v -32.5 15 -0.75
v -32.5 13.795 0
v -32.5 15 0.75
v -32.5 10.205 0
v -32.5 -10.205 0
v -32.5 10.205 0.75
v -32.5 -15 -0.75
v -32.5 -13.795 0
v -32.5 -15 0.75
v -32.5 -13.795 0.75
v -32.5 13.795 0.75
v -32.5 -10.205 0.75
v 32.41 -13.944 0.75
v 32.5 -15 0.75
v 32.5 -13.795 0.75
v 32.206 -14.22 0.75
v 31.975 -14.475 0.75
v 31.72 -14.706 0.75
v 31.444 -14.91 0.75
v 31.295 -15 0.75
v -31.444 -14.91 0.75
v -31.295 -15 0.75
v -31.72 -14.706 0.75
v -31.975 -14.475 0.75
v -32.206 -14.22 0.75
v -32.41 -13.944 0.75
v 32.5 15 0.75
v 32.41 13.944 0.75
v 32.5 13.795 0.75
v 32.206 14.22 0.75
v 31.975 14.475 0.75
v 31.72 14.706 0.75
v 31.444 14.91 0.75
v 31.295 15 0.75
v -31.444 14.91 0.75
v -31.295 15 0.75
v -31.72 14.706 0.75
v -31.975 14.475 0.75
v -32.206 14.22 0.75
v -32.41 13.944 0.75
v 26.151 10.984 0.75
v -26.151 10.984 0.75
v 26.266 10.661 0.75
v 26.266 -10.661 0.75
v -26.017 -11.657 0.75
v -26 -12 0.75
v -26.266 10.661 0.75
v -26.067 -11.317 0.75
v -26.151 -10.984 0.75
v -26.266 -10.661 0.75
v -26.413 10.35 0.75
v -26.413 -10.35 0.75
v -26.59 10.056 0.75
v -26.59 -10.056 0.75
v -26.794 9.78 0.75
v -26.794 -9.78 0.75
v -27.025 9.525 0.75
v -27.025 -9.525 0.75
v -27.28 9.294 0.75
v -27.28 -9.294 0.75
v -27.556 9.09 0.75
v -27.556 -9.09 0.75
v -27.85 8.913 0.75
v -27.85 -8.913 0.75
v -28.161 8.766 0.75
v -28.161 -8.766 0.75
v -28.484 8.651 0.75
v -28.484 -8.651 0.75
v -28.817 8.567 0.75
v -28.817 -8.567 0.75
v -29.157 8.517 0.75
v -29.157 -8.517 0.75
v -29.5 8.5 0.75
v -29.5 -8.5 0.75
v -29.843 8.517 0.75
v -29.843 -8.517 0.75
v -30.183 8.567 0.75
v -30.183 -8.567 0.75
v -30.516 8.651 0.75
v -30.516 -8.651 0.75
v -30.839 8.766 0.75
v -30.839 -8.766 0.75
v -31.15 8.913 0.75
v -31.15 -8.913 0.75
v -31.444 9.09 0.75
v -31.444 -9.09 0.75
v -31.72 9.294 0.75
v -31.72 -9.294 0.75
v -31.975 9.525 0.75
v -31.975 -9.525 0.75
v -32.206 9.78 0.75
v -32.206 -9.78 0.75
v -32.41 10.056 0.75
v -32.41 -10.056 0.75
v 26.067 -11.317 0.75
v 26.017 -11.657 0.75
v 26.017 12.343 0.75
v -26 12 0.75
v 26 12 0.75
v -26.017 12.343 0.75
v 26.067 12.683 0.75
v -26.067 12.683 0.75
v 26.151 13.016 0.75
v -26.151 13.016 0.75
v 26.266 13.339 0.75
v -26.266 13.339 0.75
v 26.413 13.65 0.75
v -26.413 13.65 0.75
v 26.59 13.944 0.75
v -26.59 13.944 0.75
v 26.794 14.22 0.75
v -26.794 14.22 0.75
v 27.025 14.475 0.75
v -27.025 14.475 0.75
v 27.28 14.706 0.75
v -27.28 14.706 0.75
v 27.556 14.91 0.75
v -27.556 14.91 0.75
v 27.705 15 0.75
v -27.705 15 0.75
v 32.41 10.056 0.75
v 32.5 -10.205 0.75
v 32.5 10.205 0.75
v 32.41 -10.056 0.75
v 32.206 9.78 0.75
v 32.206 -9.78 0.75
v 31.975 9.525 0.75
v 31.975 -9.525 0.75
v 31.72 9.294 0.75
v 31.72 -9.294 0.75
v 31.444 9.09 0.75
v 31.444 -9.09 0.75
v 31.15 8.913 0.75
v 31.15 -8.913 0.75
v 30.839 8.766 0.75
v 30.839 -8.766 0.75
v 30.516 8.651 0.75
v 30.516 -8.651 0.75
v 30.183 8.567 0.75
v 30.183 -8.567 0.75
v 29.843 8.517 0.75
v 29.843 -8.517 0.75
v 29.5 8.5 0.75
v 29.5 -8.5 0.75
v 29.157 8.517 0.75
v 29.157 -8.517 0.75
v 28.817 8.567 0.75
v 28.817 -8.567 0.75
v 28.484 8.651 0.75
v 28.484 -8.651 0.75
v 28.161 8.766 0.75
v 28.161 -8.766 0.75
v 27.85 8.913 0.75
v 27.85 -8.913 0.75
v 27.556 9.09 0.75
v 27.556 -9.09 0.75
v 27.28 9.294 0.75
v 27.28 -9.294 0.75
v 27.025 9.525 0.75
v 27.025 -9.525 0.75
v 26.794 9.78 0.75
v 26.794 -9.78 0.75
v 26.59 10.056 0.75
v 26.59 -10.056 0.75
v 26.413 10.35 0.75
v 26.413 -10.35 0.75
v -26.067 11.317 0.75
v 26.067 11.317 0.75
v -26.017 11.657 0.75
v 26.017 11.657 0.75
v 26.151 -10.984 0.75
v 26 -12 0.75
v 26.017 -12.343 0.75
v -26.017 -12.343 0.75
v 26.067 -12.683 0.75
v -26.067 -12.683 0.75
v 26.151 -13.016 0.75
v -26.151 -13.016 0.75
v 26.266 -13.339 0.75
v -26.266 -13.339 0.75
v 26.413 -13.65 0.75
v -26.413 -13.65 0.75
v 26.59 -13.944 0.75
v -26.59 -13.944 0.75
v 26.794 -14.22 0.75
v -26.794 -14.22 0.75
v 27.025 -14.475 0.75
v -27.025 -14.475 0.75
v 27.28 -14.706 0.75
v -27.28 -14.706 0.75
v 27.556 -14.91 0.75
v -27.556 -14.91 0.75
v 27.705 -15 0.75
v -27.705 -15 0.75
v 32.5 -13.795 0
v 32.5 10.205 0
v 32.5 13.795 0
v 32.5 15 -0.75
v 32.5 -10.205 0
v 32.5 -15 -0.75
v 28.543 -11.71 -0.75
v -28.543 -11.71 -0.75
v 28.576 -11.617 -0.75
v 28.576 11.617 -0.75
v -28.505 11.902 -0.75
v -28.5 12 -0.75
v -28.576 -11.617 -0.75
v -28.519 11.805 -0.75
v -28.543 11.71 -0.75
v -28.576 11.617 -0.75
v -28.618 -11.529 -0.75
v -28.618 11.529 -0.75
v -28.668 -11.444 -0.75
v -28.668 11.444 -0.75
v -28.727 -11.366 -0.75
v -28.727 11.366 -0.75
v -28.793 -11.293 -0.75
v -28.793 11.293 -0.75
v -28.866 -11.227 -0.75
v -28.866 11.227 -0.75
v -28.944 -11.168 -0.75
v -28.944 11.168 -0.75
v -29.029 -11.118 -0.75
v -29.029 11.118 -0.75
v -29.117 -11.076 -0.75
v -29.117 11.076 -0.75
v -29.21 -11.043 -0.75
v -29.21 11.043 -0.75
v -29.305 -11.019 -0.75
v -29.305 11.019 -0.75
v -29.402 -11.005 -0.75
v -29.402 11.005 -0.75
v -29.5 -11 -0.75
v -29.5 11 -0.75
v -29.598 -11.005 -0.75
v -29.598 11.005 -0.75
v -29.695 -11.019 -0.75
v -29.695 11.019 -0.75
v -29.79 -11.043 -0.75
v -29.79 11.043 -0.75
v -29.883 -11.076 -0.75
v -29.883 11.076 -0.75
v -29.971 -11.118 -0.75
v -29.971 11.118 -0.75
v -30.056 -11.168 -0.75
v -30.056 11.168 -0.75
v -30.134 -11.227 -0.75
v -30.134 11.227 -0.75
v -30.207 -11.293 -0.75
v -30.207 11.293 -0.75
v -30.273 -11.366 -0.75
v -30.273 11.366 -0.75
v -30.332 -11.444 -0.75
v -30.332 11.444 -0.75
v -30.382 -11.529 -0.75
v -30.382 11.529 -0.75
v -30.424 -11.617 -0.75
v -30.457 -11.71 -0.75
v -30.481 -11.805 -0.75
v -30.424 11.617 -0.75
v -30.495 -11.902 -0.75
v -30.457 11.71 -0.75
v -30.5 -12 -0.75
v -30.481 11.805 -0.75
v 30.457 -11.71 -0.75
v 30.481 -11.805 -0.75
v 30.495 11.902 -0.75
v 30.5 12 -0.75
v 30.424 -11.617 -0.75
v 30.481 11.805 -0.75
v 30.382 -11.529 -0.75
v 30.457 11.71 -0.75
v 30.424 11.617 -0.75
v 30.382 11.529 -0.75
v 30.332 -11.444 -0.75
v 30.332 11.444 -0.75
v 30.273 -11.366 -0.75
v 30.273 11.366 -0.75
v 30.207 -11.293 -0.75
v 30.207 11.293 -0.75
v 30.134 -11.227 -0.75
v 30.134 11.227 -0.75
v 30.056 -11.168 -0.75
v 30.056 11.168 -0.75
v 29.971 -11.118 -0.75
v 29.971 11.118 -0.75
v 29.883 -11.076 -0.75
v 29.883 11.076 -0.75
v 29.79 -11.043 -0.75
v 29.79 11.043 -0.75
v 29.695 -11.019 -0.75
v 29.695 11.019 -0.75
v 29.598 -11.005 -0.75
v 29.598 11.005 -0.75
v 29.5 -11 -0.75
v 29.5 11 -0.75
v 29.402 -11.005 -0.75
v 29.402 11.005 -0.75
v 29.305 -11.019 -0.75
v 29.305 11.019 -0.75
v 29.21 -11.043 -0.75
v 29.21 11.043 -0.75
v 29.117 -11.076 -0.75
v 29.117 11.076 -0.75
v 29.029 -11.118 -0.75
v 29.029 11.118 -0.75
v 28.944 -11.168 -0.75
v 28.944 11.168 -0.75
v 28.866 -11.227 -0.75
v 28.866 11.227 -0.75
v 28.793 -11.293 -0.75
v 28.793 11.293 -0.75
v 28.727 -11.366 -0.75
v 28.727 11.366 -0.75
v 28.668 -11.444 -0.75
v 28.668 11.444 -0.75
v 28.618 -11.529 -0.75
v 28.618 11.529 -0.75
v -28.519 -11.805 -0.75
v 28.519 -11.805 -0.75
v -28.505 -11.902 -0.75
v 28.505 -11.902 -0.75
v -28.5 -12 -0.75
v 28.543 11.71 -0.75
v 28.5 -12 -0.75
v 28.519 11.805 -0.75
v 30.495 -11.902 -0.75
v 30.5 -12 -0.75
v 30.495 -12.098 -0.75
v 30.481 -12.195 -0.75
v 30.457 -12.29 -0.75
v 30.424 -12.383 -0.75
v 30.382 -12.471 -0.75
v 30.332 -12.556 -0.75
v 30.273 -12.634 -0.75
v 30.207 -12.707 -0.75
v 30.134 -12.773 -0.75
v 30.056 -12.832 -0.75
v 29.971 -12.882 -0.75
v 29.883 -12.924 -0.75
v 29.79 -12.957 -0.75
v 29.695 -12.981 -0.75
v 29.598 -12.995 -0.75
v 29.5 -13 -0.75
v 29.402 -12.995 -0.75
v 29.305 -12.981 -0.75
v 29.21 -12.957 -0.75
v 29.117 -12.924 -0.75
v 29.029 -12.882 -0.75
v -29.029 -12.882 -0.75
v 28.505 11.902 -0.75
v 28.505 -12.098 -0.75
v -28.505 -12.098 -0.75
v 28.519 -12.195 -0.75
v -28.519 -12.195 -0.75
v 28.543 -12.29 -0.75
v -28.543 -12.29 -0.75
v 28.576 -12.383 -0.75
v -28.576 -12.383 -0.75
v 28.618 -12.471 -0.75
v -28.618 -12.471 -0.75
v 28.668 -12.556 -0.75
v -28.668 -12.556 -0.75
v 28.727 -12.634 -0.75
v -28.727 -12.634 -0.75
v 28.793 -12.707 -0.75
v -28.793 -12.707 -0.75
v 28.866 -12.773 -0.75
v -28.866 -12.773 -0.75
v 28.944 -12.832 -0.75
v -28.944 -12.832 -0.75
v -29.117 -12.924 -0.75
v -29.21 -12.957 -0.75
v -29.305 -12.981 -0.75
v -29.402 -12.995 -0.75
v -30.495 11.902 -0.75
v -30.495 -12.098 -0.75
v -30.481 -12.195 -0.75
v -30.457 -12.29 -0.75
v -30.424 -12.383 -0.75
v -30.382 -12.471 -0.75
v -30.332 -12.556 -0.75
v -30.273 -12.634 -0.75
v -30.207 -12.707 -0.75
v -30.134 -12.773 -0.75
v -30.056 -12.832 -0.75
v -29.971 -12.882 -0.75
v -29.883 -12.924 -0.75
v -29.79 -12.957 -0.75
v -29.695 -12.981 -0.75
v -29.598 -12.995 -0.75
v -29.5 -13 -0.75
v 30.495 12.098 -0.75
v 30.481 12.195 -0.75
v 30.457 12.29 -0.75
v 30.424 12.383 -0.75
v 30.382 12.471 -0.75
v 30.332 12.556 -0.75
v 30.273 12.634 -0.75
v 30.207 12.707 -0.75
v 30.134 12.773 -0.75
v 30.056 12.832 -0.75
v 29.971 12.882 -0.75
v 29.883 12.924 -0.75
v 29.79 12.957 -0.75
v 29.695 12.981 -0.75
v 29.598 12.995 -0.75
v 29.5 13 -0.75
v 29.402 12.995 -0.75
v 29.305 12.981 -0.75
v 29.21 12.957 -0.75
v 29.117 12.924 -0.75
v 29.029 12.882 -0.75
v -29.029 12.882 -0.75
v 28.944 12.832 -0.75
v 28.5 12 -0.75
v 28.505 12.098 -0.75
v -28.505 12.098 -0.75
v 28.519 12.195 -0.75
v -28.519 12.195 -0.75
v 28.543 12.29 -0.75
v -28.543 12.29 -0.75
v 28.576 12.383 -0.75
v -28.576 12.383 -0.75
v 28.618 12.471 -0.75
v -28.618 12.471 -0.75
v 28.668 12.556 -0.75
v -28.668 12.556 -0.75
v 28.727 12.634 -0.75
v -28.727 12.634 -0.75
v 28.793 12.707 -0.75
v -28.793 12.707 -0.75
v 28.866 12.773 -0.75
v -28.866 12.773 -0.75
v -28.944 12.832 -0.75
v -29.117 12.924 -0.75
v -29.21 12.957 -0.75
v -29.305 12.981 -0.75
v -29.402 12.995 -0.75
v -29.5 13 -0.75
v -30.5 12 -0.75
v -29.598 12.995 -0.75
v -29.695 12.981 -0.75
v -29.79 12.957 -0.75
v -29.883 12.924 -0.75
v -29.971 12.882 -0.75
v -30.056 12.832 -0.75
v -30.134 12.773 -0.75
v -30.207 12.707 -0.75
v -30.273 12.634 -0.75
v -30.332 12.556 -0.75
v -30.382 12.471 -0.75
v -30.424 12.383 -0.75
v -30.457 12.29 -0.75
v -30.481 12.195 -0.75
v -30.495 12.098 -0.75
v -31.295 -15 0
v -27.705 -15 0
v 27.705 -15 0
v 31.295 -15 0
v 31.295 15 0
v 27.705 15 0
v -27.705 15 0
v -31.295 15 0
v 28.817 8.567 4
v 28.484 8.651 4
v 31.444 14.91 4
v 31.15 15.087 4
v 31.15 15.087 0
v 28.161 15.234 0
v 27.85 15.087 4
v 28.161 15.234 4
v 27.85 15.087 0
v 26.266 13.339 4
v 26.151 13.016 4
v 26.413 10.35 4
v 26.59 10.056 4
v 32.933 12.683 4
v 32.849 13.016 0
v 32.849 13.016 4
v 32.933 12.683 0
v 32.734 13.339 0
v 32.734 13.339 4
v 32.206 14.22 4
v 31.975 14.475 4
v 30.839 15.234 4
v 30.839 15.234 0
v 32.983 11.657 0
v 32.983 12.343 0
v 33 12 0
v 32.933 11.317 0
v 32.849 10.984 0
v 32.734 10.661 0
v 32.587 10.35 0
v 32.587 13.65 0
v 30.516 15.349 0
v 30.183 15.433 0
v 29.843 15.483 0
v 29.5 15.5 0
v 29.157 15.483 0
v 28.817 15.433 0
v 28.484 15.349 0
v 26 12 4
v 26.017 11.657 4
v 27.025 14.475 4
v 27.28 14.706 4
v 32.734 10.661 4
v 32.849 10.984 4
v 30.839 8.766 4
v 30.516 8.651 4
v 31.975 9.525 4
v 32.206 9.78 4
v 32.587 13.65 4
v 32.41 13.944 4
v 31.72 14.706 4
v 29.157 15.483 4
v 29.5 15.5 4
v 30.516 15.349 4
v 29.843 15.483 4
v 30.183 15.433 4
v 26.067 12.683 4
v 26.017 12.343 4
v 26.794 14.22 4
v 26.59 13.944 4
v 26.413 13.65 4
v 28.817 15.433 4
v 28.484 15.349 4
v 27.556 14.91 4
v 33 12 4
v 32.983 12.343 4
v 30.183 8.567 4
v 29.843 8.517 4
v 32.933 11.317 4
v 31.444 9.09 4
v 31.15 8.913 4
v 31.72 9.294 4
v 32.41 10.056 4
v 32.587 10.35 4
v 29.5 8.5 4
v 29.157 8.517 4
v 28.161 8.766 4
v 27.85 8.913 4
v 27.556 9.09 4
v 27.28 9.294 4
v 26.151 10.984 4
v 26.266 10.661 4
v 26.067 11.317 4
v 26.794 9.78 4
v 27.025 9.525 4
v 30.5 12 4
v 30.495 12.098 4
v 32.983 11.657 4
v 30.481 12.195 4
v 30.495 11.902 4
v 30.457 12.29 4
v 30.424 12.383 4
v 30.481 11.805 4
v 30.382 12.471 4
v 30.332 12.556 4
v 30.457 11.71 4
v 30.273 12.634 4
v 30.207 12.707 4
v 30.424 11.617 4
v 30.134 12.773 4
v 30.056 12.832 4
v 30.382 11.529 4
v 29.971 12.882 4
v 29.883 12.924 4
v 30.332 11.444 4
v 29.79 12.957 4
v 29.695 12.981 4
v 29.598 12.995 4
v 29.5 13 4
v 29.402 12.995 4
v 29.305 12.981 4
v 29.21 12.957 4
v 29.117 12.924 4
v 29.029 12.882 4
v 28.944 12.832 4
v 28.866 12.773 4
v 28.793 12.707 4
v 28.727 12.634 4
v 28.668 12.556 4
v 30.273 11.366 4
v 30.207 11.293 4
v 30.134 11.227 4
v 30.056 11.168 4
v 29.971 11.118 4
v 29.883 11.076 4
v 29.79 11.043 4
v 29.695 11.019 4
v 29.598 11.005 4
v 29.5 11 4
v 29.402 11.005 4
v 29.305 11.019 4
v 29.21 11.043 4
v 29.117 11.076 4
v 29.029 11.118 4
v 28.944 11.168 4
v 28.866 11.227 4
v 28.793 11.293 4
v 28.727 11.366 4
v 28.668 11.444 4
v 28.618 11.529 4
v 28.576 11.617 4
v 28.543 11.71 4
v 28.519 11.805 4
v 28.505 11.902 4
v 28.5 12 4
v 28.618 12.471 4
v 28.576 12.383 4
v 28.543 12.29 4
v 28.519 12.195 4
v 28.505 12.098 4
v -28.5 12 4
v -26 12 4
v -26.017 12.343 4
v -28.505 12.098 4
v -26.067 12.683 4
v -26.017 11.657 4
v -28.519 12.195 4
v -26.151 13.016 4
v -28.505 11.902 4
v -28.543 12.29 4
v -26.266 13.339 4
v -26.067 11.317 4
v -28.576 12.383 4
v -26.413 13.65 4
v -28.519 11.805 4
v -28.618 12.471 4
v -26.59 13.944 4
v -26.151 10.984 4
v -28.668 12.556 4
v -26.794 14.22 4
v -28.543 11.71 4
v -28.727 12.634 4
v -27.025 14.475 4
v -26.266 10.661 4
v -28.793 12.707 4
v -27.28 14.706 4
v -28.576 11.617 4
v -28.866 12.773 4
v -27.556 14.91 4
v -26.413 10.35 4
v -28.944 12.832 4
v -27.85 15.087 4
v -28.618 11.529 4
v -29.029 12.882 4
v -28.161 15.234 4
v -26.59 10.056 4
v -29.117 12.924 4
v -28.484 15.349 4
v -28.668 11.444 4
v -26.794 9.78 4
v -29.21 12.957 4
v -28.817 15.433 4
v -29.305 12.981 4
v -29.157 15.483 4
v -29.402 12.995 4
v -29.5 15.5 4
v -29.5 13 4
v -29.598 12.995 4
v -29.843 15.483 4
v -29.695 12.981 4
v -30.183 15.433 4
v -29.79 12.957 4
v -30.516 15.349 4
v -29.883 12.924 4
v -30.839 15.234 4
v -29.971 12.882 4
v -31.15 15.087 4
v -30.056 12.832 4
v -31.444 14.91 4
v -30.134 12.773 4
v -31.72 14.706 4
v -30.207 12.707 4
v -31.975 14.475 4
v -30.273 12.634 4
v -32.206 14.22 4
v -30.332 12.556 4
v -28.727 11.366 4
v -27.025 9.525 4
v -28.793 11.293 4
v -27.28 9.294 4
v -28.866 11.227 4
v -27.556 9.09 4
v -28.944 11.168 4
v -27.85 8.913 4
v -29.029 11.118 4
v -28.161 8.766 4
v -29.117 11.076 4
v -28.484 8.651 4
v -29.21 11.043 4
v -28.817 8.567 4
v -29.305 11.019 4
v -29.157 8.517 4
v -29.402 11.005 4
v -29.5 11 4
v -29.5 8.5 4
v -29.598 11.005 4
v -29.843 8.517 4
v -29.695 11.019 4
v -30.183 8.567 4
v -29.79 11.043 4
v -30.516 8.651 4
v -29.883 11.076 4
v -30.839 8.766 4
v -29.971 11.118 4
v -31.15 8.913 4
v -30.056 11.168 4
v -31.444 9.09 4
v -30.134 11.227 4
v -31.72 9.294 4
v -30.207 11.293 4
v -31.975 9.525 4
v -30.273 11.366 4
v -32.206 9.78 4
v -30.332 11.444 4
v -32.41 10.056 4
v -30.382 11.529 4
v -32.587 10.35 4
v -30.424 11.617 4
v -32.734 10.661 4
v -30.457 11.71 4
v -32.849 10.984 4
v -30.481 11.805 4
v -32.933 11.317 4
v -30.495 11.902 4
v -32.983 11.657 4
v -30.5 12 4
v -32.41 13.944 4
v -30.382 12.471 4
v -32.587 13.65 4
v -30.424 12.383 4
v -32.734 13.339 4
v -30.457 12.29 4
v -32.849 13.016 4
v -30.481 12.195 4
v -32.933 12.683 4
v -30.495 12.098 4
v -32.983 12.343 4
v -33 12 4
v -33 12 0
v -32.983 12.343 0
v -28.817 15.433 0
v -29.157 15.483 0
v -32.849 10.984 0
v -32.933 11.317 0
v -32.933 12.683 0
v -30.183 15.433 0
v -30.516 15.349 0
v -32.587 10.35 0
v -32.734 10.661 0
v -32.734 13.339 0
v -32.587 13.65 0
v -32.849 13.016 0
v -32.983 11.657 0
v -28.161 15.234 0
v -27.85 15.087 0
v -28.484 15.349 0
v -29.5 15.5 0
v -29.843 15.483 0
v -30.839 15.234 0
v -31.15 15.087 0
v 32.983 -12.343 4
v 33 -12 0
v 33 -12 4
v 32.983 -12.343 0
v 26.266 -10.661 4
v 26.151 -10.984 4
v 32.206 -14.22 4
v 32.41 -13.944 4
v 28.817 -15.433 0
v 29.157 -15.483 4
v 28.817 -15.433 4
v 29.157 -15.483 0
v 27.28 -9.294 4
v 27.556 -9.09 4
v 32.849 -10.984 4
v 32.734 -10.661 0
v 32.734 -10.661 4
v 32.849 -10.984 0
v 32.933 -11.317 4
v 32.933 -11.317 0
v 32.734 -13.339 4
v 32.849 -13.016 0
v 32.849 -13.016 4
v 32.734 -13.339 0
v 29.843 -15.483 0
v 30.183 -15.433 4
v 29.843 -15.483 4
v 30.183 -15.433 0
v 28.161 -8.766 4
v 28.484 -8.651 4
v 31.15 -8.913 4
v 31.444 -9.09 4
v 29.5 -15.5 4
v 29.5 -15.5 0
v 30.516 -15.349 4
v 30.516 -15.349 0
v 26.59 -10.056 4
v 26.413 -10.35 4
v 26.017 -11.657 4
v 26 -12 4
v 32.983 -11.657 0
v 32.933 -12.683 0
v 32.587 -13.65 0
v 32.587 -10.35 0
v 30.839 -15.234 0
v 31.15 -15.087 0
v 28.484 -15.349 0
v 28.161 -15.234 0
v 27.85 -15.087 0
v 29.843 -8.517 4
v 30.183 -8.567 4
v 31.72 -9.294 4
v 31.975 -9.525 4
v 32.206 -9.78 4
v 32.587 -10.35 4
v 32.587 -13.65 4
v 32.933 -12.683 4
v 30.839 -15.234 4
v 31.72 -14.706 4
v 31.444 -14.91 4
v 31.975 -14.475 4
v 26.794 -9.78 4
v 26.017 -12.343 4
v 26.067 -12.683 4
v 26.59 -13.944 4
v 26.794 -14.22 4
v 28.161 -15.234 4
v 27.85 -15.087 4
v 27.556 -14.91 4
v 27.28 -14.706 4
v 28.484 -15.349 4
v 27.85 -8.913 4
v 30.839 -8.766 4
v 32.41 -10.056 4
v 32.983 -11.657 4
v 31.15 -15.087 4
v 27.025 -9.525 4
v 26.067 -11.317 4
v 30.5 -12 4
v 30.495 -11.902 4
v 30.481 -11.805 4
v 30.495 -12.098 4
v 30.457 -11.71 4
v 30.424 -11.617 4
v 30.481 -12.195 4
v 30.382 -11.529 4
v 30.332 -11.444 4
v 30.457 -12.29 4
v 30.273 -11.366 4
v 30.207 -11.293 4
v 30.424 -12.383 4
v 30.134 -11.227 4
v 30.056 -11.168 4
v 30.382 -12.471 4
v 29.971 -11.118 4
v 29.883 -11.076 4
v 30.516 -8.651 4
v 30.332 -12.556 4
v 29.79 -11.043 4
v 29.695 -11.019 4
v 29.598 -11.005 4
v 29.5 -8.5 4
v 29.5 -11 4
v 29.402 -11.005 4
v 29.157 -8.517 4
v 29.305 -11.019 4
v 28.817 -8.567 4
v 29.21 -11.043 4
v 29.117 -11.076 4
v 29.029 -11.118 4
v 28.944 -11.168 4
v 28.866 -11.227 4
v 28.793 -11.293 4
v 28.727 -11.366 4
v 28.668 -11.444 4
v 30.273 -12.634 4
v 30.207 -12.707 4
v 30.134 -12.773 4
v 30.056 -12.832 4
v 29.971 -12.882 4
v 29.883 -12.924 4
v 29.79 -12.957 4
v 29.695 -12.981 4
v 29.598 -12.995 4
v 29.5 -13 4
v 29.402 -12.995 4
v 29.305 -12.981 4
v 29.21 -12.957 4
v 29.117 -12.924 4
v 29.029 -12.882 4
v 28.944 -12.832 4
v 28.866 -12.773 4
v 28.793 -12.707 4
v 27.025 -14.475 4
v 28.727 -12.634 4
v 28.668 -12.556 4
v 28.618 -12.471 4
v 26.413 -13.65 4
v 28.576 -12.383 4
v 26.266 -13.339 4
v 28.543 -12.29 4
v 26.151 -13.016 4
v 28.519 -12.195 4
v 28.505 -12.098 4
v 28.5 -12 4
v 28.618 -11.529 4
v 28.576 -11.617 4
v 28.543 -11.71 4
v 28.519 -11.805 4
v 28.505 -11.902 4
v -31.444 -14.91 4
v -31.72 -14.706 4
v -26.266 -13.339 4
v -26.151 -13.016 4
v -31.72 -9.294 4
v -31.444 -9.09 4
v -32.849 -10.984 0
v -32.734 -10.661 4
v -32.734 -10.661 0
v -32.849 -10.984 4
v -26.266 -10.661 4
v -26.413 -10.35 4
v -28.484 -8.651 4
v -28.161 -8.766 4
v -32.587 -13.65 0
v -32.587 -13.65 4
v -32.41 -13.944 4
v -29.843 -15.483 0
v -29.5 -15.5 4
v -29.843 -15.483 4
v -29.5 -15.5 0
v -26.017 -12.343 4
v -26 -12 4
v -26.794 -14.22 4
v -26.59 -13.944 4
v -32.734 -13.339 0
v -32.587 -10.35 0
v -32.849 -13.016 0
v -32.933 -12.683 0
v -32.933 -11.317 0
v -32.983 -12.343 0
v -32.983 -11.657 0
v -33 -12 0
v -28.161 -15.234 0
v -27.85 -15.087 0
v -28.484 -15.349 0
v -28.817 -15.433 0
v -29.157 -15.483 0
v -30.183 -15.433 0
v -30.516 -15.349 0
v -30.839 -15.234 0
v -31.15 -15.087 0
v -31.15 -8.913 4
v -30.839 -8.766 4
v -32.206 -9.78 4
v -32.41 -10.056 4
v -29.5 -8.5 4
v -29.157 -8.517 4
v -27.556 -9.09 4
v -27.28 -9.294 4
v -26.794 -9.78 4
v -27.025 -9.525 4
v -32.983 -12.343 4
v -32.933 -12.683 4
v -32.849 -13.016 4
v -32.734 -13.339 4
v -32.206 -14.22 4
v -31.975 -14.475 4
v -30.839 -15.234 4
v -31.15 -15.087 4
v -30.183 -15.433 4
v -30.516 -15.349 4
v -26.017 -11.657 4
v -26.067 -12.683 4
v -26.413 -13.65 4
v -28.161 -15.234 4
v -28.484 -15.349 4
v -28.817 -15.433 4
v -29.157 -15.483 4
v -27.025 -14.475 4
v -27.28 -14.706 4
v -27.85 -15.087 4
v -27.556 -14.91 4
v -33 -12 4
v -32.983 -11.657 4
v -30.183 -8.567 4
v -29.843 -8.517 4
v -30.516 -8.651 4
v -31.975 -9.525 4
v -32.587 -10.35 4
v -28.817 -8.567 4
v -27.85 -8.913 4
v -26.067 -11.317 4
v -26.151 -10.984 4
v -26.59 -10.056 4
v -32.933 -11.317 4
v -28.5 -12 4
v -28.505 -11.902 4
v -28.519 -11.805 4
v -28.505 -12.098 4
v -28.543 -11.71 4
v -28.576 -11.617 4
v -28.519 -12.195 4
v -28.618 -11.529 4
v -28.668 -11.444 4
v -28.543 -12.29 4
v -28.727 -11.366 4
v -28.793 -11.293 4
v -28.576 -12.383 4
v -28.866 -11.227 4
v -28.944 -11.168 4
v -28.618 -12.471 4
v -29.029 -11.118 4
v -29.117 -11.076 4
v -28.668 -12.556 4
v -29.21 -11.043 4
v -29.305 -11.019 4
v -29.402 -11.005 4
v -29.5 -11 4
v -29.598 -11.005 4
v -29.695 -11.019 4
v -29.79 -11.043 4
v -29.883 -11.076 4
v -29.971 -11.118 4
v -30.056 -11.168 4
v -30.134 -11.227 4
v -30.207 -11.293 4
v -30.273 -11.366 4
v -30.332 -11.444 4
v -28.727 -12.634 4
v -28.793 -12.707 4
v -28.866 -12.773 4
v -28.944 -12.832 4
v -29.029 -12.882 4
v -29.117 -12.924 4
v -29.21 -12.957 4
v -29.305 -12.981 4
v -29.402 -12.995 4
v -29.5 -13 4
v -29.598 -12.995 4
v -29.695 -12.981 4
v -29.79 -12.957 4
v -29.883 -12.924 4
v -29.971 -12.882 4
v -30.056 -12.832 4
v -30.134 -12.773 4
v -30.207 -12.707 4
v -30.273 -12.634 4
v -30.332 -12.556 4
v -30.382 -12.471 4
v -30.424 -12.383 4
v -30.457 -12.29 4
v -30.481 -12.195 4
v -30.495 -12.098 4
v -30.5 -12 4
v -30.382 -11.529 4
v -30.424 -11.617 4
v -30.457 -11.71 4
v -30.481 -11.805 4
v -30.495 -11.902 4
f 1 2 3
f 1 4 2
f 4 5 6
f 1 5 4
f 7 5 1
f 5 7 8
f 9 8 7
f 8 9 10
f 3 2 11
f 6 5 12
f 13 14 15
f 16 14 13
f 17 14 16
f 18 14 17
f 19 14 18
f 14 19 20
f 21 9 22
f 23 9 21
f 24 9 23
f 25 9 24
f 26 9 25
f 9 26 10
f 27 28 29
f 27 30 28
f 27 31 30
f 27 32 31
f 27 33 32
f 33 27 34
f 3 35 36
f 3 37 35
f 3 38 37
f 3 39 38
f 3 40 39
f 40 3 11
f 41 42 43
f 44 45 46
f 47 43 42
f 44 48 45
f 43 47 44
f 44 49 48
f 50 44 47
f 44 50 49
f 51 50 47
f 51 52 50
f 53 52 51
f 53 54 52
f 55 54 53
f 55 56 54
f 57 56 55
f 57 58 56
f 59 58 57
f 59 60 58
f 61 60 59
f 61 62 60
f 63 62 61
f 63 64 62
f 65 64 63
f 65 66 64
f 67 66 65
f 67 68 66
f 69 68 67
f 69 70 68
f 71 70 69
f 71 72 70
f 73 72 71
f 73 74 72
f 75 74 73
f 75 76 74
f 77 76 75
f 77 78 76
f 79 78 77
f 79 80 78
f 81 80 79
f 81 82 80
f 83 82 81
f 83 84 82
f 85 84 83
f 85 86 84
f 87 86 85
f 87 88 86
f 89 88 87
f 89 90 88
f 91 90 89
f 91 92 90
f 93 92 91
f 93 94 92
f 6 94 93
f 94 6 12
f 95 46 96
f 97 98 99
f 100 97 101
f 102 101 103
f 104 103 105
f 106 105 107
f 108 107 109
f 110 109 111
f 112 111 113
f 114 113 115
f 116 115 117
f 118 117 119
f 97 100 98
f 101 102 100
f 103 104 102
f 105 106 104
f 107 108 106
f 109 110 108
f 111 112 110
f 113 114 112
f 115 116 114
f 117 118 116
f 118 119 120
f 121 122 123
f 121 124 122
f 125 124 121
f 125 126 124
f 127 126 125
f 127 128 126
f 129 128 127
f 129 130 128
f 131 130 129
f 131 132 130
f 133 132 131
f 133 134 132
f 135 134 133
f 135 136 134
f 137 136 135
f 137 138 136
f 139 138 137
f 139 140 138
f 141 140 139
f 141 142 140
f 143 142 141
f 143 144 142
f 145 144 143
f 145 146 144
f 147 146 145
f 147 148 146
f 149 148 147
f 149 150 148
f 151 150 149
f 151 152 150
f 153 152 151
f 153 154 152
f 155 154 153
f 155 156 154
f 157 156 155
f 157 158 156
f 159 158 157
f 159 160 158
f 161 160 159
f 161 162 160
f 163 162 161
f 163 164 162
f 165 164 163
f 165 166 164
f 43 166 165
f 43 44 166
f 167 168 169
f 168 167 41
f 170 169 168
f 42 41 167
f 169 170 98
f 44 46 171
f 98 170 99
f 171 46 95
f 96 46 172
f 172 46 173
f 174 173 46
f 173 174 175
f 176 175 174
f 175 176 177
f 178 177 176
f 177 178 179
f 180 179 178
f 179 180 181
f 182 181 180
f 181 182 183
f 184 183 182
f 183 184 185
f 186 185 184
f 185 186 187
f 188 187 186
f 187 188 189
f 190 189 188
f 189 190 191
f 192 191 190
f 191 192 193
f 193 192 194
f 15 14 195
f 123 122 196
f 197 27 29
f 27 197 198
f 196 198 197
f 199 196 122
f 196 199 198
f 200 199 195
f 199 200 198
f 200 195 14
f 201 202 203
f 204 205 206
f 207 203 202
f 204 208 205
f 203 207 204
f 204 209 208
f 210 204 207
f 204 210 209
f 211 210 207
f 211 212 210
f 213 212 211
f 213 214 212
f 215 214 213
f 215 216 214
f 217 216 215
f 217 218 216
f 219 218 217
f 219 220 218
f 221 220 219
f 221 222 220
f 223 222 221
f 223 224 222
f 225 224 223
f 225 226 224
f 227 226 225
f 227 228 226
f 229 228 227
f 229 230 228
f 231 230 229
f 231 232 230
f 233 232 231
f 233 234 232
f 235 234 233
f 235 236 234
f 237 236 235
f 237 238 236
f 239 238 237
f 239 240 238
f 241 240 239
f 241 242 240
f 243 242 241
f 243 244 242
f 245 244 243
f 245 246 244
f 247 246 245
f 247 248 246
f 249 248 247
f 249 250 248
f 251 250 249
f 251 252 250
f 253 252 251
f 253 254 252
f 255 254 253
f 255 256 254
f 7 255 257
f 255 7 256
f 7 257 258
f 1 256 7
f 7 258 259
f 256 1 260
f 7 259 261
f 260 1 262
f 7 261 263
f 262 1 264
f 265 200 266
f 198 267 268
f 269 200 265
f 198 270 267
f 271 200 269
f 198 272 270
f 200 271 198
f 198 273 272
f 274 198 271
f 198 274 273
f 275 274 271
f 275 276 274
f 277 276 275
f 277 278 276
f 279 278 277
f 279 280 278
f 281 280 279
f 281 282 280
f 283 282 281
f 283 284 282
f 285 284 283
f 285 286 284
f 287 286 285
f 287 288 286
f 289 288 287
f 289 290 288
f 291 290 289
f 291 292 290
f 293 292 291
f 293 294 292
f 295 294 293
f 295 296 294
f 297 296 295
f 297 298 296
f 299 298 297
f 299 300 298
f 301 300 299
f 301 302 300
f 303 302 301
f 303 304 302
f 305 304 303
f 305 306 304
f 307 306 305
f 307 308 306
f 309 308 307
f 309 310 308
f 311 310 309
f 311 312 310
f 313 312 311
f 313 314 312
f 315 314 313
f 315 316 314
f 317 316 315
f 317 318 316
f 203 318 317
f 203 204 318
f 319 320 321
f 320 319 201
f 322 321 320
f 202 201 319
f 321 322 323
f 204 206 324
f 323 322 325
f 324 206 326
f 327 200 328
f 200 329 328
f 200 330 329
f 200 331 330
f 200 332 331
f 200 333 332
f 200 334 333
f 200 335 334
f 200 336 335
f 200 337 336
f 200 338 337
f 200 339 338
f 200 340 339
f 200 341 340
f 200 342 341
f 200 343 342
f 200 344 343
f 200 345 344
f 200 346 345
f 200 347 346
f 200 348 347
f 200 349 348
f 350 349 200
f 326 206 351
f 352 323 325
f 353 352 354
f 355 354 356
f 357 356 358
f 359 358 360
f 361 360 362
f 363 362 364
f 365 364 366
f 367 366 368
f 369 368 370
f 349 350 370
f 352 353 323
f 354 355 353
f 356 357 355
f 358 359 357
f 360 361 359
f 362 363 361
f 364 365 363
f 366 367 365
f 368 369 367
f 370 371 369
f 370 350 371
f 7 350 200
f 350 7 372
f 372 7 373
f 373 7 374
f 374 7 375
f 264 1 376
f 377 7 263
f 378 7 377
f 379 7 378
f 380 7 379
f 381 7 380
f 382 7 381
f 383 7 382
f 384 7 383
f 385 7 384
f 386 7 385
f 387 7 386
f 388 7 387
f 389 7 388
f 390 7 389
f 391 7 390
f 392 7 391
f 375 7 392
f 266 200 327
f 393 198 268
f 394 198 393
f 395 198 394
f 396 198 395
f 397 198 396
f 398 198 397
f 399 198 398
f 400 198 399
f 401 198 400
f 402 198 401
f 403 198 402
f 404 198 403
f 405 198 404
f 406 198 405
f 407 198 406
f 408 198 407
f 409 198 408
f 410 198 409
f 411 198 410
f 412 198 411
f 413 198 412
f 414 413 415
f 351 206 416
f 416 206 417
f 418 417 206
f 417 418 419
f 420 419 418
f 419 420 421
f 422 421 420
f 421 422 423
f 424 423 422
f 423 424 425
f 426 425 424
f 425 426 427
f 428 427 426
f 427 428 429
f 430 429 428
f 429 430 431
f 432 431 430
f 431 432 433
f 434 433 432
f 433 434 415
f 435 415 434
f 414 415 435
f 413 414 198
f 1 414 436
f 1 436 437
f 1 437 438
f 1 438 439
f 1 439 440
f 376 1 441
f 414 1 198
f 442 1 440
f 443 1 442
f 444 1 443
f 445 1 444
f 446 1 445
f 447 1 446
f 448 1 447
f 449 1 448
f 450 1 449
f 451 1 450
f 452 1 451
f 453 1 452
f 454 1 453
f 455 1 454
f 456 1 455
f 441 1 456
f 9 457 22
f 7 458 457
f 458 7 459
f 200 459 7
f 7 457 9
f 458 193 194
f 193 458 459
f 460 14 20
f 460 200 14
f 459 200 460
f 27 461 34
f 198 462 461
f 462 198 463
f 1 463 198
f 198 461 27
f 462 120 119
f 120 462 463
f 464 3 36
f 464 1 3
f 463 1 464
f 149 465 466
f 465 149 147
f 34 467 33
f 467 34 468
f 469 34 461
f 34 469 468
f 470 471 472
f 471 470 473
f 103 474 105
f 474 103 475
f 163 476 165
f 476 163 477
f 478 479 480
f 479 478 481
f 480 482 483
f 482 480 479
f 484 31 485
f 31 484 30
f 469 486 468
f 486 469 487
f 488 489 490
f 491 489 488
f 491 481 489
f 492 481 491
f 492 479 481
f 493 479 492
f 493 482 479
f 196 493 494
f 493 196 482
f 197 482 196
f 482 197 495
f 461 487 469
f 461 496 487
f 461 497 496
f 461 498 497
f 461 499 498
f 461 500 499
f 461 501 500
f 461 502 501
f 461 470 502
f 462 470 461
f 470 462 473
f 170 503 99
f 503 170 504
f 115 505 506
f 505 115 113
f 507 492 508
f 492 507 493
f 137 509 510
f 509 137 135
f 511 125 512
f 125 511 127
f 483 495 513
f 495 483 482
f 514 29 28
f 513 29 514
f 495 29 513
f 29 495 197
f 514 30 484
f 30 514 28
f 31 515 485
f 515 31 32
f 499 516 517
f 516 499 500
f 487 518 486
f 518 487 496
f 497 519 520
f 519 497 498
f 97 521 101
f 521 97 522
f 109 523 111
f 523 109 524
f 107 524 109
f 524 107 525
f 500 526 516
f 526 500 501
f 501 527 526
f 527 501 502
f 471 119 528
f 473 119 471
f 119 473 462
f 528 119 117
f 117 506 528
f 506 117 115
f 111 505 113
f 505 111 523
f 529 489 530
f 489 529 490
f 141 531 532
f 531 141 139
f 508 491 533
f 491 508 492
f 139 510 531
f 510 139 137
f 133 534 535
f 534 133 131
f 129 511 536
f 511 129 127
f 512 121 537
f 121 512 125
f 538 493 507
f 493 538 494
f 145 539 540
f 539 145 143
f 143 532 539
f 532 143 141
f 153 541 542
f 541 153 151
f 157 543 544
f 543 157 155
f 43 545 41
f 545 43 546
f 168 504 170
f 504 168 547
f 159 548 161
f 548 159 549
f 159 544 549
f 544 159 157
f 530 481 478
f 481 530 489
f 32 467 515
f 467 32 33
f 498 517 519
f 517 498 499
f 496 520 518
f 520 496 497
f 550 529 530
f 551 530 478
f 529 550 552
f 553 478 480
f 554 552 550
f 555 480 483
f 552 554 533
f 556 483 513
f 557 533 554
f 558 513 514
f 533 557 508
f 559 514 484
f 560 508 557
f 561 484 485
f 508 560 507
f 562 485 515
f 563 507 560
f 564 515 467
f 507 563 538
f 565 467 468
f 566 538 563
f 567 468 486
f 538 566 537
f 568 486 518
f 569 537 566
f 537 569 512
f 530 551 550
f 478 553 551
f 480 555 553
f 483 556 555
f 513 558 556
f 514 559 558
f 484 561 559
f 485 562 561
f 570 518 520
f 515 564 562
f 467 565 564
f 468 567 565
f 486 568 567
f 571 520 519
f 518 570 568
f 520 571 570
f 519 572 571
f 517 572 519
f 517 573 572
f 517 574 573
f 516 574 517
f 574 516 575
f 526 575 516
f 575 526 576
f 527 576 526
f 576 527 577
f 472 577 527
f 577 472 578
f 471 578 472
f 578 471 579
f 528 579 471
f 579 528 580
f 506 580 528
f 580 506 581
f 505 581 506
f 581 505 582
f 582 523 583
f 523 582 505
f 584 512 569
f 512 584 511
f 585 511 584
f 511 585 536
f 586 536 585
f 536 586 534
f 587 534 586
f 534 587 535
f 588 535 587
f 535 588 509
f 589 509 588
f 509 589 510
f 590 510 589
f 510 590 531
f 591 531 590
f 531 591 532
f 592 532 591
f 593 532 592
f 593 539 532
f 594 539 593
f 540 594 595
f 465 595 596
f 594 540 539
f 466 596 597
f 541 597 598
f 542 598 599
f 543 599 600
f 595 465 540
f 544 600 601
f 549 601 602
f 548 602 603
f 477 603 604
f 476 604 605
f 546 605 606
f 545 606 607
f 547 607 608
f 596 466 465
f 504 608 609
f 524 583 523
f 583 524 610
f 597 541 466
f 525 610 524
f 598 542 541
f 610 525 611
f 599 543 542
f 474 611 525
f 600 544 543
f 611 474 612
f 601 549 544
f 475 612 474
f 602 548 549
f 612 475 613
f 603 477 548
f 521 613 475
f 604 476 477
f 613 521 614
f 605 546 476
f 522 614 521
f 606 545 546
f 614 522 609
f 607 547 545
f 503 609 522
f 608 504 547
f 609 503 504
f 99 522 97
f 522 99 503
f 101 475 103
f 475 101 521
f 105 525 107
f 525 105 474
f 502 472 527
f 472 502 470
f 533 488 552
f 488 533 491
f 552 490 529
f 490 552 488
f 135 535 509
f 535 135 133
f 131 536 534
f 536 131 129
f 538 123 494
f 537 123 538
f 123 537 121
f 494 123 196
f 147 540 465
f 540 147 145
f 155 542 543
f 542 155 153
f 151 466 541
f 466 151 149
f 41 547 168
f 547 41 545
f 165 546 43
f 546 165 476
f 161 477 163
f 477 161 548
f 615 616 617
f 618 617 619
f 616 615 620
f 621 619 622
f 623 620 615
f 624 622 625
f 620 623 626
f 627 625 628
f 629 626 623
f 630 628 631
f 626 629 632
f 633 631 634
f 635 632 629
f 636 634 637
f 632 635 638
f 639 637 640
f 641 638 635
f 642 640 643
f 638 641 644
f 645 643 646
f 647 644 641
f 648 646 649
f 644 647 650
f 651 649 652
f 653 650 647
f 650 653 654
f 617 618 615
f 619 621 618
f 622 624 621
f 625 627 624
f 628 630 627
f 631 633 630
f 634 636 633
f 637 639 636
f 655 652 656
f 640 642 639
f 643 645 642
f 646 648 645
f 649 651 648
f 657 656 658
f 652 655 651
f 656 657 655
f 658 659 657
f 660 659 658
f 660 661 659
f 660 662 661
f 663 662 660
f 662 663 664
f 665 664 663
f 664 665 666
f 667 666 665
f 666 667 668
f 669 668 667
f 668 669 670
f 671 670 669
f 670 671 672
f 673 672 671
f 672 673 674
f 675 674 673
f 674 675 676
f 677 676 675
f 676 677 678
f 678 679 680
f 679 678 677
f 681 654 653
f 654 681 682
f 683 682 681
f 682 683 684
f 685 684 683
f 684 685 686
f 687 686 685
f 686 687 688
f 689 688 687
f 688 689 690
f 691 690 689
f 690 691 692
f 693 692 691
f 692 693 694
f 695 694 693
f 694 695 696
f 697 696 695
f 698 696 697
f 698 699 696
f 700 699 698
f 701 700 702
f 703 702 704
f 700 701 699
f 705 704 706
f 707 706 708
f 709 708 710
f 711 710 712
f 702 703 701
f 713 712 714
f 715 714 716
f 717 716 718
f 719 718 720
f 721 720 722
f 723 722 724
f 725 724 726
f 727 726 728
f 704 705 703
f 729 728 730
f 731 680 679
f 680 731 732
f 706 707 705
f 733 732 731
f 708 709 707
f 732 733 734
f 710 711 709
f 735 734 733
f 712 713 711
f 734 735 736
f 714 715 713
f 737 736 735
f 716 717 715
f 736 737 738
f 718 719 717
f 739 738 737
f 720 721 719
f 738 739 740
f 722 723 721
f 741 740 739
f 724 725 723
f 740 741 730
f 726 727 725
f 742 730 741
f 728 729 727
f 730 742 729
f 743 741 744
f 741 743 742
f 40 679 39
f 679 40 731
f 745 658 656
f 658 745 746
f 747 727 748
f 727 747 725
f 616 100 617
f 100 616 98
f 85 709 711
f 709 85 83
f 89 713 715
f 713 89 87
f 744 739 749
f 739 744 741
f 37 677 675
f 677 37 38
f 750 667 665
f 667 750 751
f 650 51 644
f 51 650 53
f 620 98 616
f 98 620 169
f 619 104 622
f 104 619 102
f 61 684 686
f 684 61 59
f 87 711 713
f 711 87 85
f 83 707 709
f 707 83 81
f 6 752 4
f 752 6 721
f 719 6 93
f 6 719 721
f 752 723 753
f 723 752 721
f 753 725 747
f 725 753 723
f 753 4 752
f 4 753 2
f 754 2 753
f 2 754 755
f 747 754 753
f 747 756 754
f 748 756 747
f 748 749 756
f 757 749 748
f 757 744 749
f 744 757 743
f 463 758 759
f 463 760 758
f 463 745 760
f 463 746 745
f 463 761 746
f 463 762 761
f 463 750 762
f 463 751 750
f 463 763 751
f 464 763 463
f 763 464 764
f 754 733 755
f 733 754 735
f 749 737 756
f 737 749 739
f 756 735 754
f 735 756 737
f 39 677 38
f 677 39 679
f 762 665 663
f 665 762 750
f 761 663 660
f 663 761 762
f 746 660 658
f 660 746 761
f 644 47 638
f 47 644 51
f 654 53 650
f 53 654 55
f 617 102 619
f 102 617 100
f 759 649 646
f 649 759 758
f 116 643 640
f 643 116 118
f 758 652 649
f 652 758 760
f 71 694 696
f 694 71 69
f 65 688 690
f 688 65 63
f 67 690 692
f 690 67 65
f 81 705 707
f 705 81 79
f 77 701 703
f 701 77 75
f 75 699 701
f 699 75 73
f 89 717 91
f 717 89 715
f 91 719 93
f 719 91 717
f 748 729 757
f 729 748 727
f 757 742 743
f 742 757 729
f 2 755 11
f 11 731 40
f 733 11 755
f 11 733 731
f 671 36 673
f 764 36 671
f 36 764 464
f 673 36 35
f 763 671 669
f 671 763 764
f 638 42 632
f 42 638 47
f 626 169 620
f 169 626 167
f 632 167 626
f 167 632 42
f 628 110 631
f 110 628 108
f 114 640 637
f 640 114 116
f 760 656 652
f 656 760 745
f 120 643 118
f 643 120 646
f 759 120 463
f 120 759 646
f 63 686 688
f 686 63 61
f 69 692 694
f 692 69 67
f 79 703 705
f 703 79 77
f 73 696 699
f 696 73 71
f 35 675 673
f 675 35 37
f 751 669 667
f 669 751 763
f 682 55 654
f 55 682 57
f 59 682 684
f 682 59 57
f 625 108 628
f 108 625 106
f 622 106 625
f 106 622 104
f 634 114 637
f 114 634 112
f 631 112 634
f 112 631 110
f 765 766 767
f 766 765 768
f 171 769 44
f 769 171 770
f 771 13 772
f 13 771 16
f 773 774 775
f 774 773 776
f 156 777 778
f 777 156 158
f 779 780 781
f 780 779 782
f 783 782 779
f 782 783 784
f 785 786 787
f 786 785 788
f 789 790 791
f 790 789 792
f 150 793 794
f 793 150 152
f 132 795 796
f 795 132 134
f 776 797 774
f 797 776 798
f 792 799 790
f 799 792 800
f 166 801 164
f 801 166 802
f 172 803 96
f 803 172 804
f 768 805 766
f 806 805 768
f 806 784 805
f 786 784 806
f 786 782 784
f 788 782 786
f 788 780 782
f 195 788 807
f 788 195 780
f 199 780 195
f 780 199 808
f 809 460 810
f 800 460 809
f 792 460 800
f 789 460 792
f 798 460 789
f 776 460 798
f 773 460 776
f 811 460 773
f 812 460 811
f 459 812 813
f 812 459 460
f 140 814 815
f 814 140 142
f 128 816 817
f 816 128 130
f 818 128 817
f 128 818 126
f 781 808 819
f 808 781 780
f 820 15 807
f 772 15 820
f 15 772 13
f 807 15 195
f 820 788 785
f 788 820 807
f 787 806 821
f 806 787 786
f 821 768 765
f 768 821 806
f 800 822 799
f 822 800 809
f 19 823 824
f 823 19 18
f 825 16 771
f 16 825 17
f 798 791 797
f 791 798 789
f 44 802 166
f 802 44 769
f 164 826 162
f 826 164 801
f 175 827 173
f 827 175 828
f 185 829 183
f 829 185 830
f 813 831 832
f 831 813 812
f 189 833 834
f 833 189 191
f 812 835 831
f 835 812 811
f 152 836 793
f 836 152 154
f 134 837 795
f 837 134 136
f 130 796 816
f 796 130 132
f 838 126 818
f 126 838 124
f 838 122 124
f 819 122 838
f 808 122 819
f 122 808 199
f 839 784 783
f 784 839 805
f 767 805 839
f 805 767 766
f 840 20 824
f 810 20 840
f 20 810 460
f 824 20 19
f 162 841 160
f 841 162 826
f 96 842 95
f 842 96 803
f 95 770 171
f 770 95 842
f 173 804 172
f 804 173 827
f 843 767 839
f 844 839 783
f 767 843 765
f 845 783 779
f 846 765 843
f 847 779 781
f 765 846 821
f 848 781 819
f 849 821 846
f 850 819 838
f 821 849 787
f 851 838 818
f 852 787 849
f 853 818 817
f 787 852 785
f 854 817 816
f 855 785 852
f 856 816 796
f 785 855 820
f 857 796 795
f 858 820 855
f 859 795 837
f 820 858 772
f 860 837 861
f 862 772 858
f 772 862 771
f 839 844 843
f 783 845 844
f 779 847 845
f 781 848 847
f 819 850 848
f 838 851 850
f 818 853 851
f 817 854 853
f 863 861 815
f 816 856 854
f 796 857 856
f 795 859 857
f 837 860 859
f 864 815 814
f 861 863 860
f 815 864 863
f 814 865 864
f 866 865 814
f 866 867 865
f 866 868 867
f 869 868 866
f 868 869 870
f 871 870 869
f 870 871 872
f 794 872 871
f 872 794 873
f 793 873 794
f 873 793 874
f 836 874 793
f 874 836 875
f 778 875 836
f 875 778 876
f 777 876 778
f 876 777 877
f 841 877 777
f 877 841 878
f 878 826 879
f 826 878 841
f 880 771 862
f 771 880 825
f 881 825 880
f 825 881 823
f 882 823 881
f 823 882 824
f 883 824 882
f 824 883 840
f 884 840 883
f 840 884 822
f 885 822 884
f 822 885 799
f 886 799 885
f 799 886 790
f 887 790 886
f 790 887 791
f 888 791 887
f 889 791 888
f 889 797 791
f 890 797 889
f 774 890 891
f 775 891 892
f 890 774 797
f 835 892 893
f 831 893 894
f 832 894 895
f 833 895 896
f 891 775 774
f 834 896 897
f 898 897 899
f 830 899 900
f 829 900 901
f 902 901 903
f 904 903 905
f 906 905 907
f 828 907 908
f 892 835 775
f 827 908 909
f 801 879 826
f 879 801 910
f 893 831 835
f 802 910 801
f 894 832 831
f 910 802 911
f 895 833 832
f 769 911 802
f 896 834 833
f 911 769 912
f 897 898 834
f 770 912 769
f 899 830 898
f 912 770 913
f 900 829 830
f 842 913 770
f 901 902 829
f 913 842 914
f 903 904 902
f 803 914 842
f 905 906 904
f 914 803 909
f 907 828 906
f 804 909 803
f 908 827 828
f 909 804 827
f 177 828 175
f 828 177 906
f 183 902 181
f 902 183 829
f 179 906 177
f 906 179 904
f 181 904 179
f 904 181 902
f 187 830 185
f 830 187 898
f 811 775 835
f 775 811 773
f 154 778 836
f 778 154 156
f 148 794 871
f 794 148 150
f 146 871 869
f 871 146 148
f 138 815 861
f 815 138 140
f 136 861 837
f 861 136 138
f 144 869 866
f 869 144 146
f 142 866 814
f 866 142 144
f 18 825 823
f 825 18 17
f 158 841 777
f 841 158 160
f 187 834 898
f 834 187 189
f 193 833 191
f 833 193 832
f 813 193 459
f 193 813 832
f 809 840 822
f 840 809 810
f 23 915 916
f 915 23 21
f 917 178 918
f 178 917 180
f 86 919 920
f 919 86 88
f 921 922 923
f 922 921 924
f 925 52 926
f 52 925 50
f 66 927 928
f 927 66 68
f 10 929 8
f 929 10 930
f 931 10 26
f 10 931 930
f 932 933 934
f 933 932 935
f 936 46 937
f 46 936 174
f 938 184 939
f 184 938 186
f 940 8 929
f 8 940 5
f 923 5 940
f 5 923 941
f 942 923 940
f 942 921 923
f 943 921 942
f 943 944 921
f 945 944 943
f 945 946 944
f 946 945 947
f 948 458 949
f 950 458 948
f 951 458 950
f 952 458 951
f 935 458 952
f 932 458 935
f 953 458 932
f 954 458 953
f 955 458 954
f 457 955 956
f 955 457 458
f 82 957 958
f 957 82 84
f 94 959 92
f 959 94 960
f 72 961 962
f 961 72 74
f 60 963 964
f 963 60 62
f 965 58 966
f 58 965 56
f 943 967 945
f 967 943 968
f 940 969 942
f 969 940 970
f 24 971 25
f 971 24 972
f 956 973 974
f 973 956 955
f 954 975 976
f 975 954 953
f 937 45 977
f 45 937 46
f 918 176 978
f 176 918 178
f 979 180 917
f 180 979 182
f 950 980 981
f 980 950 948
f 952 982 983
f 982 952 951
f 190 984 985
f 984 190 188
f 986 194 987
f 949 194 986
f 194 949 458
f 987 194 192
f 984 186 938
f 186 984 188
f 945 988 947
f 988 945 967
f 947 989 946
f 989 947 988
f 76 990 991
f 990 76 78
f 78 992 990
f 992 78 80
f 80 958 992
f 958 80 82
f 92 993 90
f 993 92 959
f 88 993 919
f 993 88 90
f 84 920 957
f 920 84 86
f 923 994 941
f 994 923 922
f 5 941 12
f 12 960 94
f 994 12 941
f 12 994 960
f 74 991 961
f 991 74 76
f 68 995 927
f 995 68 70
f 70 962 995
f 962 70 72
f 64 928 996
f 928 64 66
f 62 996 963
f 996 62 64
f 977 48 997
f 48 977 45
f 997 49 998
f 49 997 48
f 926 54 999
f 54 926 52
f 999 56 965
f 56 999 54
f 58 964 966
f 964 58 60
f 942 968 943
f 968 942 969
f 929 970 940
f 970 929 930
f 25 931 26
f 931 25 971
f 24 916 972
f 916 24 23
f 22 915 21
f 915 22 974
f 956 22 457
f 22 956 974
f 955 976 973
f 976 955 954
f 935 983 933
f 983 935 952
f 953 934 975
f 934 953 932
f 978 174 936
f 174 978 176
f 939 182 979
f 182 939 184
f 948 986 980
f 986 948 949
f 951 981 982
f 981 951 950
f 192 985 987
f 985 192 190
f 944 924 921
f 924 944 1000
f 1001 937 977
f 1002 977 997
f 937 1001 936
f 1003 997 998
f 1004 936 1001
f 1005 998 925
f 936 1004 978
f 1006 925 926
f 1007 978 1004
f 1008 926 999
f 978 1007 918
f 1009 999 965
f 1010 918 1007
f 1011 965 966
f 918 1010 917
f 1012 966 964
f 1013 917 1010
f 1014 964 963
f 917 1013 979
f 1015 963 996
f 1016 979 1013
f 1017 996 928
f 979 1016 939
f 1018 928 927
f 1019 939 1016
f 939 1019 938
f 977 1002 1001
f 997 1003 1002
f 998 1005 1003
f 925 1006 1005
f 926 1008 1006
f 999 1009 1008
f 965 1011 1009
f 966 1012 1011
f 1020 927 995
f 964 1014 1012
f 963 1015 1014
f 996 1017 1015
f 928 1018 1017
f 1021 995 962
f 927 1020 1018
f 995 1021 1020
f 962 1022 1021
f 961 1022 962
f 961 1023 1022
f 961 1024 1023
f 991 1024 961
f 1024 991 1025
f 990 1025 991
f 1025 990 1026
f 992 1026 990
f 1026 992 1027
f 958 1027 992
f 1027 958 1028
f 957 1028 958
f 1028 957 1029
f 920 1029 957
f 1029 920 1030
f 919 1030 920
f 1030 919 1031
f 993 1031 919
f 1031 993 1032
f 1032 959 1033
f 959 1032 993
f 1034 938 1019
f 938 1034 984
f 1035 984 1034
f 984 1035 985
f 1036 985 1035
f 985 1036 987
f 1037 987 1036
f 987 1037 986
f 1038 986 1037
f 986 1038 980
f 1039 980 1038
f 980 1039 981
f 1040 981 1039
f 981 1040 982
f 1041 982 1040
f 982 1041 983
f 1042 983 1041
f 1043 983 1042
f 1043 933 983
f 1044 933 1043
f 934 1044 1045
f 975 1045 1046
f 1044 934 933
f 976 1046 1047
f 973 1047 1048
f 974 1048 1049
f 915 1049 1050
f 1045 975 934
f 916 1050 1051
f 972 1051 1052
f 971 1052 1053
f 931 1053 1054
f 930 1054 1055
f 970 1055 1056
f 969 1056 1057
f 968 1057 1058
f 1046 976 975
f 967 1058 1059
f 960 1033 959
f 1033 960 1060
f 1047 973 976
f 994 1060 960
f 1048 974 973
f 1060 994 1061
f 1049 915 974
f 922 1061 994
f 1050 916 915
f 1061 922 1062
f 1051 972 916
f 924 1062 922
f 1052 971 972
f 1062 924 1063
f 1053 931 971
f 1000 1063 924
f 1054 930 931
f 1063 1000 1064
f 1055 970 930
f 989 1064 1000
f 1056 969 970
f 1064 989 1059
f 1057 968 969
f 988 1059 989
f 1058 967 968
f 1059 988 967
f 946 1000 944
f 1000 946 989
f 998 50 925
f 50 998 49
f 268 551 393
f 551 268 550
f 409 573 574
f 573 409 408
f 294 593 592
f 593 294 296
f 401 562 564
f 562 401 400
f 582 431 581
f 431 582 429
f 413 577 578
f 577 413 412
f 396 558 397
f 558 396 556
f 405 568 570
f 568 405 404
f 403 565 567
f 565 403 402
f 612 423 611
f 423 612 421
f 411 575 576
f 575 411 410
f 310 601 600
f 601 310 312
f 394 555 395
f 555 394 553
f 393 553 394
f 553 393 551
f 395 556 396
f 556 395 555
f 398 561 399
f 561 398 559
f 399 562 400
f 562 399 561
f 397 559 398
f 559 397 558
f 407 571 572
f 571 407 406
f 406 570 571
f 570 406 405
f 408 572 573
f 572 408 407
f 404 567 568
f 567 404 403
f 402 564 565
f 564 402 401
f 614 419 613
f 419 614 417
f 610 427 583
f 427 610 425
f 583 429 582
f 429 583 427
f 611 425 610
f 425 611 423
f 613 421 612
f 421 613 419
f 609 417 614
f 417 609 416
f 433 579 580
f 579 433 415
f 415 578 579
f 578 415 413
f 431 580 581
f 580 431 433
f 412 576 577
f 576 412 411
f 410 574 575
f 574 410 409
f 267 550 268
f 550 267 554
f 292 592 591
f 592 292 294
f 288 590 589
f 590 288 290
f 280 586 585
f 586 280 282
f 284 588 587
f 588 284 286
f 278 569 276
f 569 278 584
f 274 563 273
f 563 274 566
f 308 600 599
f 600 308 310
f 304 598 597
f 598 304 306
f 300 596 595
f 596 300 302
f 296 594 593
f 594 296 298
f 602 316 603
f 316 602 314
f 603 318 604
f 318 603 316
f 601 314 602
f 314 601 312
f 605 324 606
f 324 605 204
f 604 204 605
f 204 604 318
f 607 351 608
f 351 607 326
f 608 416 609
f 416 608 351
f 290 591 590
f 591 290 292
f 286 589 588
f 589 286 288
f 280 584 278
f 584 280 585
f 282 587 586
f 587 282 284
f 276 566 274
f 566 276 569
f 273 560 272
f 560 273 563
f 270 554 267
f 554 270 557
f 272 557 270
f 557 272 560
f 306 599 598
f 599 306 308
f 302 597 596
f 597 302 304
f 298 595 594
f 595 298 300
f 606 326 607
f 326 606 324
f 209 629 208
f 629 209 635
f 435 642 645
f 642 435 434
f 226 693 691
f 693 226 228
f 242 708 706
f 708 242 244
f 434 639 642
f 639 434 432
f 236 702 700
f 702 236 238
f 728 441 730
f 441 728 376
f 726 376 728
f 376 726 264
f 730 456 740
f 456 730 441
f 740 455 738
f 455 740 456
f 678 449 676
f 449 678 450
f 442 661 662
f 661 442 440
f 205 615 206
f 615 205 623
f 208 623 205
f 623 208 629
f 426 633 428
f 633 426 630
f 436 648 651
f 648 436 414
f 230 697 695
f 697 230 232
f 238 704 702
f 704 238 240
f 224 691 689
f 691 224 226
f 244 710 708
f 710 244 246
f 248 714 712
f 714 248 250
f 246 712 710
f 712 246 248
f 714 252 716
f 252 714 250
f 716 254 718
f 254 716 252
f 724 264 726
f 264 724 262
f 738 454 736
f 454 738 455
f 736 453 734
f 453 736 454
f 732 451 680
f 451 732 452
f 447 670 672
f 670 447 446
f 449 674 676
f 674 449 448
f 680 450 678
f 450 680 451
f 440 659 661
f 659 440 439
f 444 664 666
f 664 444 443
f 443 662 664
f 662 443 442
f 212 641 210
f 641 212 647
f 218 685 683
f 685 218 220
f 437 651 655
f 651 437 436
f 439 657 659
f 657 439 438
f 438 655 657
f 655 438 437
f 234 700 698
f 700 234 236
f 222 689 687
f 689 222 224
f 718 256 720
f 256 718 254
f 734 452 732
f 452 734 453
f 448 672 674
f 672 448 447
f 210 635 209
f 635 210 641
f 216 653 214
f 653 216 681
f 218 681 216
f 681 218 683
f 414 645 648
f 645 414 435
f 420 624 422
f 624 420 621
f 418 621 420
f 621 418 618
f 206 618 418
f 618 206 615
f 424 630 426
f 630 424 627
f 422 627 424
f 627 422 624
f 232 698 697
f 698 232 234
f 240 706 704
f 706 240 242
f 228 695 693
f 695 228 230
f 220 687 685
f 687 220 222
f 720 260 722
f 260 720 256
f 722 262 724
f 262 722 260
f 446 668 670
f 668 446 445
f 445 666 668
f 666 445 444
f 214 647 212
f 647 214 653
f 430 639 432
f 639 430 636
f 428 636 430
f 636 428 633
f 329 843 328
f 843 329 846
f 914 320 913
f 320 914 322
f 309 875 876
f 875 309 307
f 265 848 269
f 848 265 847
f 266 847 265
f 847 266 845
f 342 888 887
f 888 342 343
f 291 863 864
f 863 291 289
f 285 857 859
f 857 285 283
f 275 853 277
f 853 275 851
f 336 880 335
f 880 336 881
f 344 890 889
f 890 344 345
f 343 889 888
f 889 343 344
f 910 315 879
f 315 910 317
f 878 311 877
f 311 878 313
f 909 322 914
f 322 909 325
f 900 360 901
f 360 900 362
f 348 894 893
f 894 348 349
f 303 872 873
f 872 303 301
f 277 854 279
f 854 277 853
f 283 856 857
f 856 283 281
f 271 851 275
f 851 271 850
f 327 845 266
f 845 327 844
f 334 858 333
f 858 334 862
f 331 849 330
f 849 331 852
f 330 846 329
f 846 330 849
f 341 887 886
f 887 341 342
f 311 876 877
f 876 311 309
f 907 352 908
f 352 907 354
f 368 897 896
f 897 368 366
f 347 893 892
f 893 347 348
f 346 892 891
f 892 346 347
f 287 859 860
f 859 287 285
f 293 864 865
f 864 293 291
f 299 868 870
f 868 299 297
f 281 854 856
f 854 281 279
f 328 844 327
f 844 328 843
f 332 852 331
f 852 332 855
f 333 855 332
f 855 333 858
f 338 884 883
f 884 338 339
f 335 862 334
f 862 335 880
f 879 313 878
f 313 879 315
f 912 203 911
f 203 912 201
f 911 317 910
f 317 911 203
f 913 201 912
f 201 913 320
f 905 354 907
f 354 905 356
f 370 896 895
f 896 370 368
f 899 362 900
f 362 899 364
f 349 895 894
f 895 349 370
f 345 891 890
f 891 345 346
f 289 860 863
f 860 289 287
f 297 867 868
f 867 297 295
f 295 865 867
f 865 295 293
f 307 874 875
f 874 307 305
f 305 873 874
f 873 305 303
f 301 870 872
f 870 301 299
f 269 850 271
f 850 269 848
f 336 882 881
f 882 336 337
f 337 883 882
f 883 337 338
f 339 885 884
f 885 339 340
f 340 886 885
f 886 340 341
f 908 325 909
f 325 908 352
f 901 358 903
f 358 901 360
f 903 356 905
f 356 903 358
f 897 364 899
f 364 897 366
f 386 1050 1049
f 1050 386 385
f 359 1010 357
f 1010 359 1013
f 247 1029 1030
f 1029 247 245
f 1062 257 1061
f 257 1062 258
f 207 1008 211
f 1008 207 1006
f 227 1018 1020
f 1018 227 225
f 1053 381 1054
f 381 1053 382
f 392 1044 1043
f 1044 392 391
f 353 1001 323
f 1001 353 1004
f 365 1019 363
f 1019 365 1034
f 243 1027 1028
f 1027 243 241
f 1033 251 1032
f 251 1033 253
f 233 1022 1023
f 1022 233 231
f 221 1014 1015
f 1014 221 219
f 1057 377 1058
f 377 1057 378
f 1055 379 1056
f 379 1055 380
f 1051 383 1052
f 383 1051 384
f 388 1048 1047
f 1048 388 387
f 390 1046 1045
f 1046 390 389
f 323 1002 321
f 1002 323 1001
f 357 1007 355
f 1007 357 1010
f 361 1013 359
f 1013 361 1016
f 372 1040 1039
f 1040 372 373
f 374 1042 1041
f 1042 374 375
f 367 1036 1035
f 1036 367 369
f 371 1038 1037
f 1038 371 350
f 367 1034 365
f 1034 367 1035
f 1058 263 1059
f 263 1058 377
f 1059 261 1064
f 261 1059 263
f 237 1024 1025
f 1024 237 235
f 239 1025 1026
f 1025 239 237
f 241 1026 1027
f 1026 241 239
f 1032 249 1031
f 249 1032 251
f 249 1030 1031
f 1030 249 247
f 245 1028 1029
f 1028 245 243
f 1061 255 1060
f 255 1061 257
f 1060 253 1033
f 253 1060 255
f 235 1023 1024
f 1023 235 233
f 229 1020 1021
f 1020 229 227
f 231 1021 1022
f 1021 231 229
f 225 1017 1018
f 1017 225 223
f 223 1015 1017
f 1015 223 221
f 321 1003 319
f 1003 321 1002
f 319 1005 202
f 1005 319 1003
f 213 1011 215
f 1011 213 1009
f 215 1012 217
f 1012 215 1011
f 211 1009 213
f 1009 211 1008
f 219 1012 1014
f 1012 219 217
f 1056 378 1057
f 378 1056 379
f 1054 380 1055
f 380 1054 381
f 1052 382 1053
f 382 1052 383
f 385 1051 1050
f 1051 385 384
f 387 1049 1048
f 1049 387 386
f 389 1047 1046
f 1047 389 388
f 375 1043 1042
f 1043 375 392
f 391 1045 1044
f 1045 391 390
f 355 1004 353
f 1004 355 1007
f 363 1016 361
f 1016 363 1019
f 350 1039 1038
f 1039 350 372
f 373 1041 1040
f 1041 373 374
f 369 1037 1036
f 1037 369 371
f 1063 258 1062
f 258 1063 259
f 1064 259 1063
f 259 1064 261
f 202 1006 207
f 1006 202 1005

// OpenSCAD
// Adjustable parameters
length = 65;
width = 30;
thickness = 1.5;
screw_hole_diameter = 1;
screw_hole_offset = 3;
pad_diameter = 7;
pad_height = 4;

// Don't touch

pin = pad_height * 2 + 2;


// This is not inches. No need to fix.
difference(){
    union() {
        cube([length,width,thickness], center = true);
        translate([length/2 - screw_hole_offset, width/2 - screw_hole_offset,0]) {
            cylinder( r = pad_diameter/2, h = pad_height, $fn = 64);
        }
        mirror([1,0,0]) {    
            translate([length/2 - screw_hole_offset, width/2 - screw_hole_offset,0]) {
                cylinder( r = pad_diameter/2, h = pad_height, $fn = 64);
            }
        }
        mirror([0,1,0]) {    
            translate([length/2 - screw_hole_offset, width/2 - screw_hole_offset,0]) {
                cylinder( r = pad_diameter/2, h = pad_height, $fn = 64);
            }
        }
        mirror([1,0,0]) {
            mirror([0,1,0]) {    
                translate([length/2 - screw_hole_offset, width/2 - screw_hole_offset,0]) {
                    cylinder( r = pad_diameter/2, h = pad_height, $fn = 64);
                }
            }
        }    
    }

    translate([length/2 - screw_hole_offset, width/2 - screw_hole_offset,-2]) {
            cylinder(r = screw_hole_diameter, h = pin, $fn=64);
    }

    mirror([1,0,0]) {    
        translate([length/2 - screw_hole_offset, width/2 - screw_hole_offset,-2]) {
            cylinder(r = screw_hole_diameter, h = pin, $fn=64);
        }
    }

    mirror([0,1,0]) {    
        translate([length/2 - screw_hole_offset, width/2 - screw_hole_offset,-2]) {
            cylinder(r = screw_hole_diameter, h = pin, $fn=64);
        }
    }

    mirror([1,0,0]) {
        mirror([0,1,0]) {    
            translate([length/2 - screw_hole_offset, width/2 -  screw_hole_offset,-2]) {
                cylinder(r = screw_hole_diameter, h = pin, $fn=64);
            }
        }
    }
}
